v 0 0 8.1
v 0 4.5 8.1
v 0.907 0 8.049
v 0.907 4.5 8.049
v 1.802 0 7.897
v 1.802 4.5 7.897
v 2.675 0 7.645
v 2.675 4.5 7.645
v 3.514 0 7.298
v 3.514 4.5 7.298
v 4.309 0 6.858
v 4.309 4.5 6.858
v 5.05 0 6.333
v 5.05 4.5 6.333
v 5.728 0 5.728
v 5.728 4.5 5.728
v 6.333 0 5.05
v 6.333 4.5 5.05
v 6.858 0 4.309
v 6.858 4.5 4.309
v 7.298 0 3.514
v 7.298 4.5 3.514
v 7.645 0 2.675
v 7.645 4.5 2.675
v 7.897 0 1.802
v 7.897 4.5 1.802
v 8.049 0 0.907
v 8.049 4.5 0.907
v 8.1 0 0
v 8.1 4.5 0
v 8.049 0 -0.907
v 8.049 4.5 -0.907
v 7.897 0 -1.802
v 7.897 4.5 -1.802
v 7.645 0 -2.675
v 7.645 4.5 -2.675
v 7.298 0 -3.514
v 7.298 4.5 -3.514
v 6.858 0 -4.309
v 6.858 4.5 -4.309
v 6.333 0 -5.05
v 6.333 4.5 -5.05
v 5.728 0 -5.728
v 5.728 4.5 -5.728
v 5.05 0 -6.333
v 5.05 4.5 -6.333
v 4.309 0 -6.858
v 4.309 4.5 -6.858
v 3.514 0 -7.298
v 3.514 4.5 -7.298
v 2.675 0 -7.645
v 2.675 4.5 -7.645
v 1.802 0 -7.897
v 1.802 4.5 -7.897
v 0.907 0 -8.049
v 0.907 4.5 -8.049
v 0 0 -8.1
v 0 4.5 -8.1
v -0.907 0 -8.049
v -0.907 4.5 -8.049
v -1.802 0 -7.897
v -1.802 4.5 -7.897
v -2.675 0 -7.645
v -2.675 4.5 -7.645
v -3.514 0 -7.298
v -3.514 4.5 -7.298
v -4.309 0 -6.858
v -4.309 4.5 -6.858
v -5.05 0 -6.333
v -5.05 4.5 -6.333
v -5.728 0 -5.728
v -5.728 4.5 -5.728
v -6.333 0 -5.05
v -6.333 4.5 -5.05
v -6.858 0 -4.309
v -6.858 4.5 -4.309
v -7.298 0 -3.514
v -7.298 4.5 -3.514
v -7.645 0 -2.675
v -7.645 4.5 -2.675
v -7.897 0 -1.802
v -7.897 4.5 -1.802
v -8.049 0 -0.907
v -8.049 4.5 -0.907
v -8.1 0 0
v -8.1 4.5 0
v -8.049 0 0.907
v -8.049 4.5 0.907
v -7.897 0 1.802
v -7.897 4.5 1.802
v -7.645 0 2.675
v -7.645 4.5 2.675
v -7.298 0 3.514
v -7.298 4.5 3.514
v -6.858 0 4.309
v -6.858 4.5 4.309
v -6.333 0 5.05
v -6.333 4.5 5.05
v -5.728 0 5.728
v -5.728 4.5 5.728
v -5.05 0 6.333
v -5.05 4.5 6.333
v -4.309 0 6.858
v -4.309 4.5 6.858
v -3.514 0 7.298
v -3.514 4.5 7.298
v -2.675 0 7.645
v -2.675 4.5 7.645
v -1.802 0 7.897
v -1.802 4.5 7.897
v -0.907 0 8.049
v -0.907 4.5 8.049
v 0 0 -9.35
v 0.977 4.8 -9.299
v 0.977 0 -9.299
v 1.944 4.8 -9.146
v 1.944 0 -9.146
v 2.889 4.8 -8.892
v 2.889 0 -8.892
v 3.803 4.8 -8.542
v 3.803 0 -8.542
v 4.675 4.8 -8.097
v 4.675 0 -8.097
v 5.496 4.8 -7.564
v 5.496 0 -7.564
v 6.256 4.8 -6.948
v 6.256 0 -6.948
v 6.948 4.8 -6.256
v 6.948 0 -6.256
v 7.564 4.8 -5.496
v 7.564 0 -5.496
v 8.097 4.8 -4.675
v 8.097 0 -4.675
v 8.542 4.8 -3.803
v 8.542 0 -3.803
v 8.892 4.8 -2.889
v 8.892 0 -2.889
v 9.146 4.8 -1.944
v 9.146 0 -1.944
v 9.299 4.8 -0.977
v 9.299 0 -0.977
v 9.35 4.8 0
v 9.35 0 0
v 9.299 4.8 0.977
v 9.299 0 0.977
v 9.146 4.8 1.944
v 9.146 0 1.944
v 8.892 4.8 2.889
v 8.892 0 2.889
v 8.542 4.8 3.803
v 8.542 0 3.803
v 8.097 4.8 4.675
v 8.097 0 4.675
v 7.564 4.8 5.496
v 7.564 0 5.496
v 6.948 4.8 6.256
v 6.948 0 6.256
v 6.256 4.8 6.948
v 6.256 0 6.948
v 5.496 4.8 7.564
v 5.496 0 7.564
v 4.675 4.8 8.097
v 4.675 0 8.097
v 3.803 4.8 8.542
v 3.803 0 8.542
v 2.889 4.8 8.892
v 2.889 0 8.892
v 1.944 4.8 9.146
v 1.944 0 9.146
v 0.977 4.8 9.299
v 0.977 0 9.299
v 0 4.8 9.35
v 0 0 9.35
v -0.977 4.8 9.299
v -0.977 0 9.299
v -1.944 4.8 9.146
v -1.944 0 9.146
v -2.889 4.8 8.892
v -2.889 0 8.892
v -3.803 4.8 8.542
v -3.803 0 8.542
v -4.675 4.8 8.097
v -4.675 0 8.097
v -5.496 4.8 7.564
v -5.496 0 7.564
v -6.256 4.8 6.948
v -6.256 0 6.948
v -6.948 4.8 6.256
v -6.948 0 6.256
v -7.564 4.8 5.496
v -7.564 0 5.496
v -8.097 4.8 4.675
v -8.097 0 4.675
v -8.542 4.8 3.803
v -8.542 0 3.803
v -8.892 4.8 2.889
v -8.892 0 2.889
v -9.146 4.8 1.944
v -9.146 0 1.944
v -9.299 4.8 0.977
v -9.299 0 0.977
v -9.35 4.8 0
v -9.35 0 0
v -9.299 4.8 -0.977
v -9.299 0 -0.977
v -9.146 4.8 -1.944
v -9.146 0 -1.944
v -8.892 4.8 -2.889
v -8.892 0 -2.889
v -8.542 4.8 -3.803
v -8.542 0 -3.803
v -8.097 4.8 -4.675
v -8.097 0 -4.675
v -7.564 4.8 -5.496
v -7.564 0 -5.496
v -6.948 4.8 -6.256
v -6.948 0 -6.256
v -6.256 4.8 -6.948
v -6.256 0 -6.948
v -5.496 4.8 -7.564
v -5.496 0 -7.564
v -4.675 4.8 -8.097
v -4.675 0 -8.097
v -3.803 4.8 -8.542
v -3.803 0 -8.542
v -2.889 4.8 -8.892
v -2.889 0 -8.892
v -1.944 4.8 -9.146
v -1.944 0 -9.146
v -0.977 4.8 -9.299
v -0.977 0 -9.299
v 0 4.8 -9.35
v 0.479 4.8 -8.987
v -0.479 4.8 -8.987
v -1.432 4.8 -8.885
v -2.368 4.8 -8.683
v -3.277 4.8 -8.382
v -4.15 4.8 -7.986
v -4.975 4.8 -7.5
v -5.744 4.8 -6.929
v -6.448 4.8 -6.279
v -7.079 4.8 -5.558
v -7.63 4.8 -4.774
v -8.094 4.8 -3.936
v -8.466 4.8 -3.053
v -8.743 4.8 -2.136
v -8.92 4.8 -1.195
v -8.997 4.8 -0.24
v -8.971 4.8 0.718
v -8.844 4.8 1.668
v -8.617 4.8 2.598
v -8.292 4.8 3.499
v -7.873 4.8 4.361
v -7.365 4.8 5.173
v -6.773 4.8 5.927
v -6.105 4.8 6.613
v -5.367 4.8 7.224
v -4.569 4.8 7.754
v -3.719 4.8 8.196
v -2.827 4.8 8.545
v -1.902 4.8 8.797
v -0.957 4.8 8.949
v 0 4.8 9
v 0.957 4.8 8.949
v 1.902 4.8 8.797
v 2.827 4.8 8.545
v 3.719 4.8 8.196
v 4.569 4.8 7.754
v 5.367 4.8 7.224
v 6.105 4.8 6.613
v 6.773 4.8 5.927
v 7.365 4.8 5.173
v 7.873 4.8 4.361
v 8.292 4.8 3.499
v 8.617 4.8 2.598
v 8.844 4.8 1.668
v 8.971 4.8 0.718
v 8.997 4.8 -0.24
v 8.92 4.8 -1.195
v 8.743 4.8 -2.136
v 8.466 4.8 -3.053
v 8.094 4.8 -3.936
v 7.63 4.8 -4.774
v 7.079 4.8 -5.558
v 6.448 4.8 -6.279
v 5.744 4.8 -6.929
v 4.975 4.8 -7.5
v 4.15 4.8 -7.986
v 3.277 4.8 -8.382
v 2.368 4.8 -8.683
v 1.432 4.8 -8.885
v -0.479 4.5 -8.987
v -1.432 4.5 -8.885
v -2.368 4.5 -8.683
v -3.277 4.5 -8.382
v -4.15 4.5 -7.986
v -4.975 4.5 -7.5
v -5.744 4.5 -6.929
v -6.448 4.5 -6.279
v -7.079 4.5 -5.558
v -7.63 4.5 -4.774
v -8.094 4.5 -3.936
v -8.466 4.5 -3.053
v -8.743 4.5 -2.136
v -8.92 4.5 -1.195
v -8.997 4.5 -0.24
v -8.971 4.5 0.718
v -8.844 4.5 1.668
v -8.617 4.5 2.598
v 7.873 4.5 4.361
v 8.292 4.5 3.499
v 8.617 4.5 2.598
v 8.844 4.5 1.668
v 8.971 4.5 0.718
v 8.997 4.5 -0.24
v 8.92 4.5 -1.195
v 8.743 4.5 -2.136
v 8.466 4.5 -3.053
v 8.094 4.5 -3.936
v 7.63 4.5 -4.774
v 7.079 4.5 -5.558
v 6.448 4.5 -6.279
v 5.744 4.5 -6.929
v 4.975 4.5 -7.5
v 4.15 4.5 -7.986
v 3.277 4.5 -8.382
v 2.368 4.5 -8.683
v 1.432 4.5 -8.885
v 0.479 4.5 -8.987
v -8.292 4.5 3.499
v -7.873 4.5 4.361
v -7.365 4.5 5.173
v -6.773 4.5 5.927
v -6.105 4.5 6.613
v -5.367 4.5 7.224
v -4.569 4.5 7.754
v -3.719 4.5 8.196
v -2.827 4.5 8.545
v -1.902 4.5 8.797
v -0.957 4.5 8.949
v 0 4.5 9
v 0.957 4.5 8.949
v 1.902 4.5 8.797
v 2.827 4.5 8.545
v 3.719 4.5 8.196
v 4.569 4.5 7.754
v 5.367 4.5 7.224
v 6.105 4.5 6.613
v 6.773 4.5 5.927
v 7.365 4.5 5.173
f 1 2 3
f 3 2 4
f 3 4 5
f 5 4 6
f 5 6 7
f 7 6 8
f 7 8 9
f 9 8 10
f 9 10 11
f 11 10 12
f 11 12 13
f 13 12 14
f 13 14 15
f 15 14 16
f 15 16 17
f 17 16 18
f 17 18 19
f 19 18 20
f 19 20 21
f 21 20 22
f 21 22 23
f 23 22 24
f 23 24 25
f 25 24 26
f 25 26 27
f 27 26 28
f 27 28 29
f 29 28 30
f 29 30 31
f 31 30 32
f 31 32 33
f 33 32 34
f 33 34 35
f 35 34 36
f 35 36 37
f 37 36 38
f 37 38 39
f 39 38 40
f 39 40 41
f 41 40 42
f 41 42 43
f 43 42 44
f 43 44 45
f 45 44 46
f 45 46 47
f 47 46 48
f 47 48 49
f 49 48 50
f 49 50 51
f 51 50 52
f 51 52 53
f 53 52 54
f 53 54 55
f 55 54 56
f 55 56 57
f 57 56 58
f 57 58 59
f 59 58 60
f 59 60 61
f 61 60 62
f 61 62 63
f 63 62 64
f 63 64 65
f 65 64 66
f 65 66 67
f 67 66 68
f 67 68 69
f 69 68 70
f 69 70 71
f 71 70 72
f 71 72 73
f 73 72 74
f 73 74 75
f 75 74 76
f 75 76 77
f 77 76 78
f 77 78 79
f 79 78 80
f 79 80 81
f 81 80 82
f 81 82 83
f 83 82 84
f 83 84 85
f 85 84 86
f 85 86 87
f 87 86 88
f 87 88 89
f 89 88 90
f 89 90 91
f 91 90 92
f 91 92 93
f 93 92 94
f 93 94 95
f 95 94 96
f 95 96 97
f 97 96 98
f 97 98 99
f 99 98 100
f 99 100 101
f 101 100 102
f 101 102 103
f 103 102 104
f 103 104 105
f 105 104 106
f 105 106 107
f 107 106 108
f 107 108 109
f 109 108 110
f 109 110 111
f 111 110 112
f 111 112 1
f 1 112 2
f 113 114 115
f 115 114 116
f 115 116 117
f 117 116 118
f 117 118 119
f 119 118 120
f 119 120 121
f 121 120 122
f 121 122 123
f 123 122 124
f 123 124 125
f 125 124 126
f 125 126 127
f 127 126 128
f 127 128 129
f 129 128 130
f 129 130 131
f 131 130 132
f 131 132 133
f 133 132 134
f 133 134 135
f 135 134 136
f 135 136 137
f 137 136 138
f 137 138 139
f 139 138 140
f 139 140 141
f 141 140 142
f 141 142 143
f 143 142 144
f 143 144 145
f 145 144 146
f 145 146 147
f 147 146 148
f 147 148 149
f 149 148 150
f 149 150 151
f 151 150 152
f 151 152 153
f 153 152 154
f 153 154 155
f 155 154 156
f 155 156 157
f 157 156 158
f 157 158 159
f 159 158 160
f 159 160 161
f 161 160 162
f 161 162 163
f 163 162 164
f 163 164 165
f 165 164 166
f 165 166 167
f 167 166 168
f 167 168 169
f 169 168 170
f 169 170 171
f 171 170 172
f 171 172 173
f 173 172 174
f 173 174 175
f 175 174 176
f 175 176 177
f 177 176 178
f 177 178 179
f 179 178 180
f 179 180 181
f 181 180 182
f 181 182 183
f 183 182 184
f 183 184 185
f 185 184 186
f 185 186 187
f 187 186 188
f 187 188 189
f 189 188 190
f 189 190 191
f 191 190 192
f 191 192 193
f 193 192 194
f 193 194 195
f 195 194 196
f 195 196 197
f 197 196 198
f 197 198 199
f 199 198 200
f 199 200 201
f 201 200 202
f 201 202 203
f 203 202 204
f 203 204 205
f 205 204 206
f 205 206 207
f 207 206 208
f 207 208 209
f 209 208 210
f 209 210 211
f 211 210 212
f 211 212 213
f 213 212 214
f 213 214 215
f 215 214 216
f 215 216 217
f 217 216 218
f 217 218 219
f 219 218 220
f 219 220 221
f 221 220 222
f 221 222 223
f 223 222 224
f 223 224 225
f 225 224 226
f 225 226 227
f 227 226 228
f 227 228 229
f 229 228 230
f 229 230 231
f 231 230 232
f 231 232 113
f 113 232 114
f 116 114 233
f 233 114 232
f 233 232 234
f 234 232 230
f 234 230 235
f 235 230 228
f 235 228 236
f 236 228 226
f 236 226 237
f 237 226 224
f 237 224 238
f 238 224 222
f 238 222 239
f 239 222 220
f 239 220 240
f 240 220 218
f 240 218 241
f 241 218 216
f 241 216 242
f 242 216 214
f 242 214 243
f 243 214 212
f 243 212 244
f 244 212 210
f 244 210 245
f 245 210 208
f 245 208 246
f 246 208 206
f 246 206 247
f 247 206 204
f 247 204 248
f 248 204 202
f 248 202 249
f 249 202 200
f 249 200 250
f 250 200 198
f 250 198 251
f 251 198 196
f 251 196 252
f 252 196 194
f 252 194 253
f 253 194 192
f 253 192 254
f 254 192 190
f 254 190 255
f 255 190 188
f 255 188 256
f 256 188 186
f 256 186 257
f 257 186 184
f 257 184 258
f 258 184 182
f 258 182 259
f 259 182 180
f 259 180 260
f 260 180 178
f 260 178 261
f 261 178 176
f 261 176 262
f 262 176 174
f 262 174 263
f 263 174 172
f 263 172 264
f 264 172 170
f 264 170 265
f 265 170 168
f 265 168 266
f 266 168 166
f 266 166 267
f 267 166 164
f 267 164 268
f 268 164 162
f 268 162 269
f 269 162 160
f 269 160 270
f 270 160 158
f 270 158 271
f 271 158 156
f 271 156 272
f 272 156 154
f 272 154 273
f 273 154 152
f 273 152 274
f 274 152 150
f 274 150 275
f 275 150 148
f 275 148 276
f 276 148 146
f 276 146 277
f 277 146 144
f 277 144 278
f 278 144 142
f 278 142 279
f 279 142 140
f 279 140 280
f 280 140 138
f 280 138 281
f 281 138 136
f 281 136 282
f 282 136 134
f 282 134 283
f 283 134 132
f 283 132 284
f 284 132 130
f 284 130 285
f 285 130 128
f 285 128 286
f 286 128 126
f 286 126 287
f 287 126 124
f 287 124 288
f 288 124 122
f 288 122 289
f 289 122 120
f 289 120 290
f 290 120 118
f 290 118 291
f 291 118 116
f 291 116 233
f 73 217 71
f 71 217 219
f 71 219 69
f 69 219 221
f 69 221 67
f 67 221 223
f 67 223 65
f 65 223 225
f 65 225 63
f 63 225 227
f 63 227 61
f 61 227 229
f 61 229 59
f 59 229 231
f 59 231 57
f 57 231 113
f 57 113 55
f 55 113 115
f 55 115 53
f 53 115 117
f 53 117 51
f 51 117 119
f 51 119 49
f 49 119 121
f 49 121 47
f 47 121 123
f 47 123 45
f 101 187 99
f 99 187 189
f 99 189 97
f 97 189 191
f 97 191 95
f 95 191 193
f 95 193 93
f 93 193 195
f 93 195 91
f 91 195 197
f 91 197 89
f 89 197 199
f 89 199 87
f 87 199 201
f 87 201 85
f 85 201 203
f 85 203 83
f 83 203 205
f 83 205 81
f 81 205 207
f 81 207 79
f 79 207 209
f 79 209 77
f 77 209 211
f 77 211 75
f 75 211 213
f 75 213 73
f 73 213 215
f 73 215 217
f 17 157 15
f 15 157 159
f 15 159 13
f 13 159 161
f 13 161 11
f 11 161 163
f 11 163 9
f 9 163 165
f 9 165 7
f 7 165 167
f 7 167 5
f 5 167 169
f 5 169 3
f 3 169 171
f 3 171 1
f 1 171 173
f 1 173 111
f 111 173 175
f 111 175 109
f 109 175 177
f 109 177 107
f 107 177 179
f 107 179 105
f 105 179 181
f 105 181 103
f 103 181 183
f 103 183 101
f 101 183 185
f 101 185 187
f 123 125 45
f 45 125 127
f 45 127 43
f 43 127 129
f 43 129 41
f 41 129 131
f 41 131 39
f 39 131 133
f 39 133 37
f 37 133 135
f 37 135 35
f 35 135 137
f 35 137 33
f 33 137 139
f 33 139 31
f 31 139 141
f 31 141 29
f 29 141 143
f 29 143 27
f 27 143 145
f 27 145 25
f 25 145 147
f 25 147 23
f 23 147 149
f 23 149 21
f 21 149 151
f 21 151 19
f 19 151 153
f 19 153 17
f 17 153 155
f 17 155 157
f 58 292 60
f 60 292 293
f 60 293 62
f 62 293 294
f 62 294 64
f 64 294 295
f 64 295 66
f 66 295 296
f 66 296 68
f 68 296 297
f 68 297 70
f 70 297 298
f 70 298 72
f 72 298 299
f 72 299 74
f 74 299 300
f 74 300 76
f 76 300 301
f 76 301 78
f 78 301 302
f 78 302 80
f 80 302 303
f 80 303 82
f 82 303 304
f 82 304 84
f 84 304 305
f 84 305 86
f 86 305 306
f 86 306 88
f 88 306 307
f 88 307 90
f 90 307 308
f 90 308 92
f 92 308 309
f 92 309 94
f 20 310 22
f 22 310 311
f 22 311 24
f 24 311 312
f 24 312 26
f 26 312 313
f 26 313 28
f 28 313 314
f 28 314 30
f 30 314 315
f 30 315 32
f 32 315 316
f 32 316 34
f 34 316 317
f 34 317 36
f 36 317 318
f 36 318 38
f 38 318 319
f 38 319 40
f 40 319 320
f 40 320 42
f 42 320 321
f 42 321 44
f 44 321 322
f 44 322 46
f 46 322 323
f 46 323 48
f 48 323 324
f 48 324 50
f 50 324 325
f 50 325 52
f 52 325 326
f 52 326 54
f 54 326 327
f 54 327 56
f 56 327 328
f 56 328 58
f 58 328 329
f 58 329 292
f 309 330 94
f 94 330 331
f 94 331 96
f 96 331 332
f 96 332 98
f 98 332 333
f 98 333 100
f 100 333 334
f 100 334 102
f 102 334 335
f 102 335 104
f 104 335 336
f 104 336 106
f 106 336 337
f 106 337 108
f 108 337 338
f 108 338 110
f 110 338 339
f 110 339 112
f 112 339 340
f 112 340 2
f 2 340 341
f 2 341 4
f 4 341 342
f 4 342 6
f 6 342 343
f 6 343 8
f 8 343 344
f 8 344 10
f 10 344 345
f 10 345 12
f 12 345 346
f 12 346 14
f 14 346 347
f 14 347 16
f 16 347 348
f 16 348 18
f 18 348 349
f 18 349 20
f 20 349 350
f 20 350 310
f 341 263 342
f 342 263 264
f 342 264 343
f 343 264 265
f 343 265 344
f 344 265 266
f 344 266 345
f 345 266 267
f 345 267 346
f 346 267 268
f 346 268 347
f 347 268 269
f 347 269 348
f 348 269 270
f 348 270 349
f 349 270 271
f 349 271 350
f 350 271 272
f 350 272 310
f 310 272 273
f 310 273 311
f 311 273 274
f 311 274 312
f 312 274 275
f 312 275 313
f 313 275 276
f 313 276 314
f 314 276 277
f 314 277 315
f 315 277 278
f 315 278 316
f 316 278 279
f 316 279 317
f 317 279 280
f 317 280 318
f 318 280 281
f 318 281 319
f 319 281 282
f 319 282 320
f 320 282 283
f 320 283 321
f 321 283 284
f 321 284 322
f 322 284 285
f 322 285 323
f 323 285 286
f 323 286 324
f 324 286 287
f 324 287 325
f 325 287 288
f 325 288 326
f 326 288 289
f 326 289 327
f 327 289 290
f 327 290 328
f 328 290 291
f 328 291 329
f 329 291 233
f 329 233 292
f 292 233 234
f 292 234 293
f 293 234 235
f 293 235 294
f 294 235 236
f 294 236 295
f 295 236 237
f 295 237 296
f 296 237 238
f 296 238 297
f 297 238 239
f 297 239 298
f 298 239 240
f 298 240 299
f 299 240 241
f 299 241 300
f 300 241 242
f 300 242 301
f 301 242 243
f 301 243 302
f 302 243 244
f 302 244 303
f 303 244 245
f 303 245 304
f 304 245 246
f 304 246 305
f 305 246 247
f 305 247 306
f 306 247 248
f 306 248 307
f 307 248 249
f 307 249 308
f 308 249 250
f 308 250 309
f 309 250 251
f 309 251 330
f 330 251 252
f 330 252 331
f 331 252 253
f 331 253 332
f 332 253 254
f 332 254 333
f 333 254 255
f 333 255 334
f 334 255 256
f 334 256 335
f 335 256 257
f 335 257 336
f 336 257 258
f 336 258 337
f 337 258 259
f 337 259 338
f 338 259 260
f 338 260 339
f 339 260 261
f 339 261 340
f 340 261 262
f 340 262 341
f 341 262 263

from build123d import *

# Parameters (mm, degrees)
SKETCH1_R               = 9.35
BOSS_EXTRUDE1_DEPTH     = 4.8
CUT_EXTRUDE1_DEPTH      = 15.067160339
CUT_EXTRUDE1_DEPTH_BACK = 15.067160339
SKETCH2_R               = 8.1
SKETCH3_R               = 9
CUT_EXTRUDE2_DEPTH      = 0.3


with BuildPart() as part:
    # Sketch1 → Boss-Extrude1 (new body)
    with BuildSketch(Plane(origin=(0, 0, 0), x_dir=(1, 0, 0), z_dir=(0, 1, 0))):
        with Locations(Location((0, 0, 0), (0, 0, 270))):
            Circle(SKETCH1_R)
    extrude(amount=BOSS_EXTRUDE1_DEPTH)

    # Sketch2 → Cut-Extrude1 (cut, two sides: drawn at the far end of the back side and taken through both)
    with BuildSketch(Plane(origin=(0, 4.8, 0), x_dir=(1, 0, 0), z_dir=(0, 1, 0)).offset(-CUT_EXTRUDE1_DEPTH_BACK)):
        with Locations(Location((0, 0, 0), (0, 0, 270))):
            Circle(SKETCH2_R)
    extrude(amount=CUT_EXTRUDE1_DEPTH + CUT_EXTRUDE1_DEPTH_BACK, mode=Mode.SUBTRACT)

    # Sketch3 → Cut-Extrude2 (cut)
    with BuildSketch(Plane(origin=(0, 4.8, 0), x_dir=(1, 0, 0), z_dir=(0, 1, 0))):
        with Locations(Location((0, 0, 0), (0, 0, 270))):
            Circle(SKETCH3_R)
    extrude(amount=-CUT_EXTRUDE2_DEPTH, mode=Mode.SUBTRACT)


solid = part.part
